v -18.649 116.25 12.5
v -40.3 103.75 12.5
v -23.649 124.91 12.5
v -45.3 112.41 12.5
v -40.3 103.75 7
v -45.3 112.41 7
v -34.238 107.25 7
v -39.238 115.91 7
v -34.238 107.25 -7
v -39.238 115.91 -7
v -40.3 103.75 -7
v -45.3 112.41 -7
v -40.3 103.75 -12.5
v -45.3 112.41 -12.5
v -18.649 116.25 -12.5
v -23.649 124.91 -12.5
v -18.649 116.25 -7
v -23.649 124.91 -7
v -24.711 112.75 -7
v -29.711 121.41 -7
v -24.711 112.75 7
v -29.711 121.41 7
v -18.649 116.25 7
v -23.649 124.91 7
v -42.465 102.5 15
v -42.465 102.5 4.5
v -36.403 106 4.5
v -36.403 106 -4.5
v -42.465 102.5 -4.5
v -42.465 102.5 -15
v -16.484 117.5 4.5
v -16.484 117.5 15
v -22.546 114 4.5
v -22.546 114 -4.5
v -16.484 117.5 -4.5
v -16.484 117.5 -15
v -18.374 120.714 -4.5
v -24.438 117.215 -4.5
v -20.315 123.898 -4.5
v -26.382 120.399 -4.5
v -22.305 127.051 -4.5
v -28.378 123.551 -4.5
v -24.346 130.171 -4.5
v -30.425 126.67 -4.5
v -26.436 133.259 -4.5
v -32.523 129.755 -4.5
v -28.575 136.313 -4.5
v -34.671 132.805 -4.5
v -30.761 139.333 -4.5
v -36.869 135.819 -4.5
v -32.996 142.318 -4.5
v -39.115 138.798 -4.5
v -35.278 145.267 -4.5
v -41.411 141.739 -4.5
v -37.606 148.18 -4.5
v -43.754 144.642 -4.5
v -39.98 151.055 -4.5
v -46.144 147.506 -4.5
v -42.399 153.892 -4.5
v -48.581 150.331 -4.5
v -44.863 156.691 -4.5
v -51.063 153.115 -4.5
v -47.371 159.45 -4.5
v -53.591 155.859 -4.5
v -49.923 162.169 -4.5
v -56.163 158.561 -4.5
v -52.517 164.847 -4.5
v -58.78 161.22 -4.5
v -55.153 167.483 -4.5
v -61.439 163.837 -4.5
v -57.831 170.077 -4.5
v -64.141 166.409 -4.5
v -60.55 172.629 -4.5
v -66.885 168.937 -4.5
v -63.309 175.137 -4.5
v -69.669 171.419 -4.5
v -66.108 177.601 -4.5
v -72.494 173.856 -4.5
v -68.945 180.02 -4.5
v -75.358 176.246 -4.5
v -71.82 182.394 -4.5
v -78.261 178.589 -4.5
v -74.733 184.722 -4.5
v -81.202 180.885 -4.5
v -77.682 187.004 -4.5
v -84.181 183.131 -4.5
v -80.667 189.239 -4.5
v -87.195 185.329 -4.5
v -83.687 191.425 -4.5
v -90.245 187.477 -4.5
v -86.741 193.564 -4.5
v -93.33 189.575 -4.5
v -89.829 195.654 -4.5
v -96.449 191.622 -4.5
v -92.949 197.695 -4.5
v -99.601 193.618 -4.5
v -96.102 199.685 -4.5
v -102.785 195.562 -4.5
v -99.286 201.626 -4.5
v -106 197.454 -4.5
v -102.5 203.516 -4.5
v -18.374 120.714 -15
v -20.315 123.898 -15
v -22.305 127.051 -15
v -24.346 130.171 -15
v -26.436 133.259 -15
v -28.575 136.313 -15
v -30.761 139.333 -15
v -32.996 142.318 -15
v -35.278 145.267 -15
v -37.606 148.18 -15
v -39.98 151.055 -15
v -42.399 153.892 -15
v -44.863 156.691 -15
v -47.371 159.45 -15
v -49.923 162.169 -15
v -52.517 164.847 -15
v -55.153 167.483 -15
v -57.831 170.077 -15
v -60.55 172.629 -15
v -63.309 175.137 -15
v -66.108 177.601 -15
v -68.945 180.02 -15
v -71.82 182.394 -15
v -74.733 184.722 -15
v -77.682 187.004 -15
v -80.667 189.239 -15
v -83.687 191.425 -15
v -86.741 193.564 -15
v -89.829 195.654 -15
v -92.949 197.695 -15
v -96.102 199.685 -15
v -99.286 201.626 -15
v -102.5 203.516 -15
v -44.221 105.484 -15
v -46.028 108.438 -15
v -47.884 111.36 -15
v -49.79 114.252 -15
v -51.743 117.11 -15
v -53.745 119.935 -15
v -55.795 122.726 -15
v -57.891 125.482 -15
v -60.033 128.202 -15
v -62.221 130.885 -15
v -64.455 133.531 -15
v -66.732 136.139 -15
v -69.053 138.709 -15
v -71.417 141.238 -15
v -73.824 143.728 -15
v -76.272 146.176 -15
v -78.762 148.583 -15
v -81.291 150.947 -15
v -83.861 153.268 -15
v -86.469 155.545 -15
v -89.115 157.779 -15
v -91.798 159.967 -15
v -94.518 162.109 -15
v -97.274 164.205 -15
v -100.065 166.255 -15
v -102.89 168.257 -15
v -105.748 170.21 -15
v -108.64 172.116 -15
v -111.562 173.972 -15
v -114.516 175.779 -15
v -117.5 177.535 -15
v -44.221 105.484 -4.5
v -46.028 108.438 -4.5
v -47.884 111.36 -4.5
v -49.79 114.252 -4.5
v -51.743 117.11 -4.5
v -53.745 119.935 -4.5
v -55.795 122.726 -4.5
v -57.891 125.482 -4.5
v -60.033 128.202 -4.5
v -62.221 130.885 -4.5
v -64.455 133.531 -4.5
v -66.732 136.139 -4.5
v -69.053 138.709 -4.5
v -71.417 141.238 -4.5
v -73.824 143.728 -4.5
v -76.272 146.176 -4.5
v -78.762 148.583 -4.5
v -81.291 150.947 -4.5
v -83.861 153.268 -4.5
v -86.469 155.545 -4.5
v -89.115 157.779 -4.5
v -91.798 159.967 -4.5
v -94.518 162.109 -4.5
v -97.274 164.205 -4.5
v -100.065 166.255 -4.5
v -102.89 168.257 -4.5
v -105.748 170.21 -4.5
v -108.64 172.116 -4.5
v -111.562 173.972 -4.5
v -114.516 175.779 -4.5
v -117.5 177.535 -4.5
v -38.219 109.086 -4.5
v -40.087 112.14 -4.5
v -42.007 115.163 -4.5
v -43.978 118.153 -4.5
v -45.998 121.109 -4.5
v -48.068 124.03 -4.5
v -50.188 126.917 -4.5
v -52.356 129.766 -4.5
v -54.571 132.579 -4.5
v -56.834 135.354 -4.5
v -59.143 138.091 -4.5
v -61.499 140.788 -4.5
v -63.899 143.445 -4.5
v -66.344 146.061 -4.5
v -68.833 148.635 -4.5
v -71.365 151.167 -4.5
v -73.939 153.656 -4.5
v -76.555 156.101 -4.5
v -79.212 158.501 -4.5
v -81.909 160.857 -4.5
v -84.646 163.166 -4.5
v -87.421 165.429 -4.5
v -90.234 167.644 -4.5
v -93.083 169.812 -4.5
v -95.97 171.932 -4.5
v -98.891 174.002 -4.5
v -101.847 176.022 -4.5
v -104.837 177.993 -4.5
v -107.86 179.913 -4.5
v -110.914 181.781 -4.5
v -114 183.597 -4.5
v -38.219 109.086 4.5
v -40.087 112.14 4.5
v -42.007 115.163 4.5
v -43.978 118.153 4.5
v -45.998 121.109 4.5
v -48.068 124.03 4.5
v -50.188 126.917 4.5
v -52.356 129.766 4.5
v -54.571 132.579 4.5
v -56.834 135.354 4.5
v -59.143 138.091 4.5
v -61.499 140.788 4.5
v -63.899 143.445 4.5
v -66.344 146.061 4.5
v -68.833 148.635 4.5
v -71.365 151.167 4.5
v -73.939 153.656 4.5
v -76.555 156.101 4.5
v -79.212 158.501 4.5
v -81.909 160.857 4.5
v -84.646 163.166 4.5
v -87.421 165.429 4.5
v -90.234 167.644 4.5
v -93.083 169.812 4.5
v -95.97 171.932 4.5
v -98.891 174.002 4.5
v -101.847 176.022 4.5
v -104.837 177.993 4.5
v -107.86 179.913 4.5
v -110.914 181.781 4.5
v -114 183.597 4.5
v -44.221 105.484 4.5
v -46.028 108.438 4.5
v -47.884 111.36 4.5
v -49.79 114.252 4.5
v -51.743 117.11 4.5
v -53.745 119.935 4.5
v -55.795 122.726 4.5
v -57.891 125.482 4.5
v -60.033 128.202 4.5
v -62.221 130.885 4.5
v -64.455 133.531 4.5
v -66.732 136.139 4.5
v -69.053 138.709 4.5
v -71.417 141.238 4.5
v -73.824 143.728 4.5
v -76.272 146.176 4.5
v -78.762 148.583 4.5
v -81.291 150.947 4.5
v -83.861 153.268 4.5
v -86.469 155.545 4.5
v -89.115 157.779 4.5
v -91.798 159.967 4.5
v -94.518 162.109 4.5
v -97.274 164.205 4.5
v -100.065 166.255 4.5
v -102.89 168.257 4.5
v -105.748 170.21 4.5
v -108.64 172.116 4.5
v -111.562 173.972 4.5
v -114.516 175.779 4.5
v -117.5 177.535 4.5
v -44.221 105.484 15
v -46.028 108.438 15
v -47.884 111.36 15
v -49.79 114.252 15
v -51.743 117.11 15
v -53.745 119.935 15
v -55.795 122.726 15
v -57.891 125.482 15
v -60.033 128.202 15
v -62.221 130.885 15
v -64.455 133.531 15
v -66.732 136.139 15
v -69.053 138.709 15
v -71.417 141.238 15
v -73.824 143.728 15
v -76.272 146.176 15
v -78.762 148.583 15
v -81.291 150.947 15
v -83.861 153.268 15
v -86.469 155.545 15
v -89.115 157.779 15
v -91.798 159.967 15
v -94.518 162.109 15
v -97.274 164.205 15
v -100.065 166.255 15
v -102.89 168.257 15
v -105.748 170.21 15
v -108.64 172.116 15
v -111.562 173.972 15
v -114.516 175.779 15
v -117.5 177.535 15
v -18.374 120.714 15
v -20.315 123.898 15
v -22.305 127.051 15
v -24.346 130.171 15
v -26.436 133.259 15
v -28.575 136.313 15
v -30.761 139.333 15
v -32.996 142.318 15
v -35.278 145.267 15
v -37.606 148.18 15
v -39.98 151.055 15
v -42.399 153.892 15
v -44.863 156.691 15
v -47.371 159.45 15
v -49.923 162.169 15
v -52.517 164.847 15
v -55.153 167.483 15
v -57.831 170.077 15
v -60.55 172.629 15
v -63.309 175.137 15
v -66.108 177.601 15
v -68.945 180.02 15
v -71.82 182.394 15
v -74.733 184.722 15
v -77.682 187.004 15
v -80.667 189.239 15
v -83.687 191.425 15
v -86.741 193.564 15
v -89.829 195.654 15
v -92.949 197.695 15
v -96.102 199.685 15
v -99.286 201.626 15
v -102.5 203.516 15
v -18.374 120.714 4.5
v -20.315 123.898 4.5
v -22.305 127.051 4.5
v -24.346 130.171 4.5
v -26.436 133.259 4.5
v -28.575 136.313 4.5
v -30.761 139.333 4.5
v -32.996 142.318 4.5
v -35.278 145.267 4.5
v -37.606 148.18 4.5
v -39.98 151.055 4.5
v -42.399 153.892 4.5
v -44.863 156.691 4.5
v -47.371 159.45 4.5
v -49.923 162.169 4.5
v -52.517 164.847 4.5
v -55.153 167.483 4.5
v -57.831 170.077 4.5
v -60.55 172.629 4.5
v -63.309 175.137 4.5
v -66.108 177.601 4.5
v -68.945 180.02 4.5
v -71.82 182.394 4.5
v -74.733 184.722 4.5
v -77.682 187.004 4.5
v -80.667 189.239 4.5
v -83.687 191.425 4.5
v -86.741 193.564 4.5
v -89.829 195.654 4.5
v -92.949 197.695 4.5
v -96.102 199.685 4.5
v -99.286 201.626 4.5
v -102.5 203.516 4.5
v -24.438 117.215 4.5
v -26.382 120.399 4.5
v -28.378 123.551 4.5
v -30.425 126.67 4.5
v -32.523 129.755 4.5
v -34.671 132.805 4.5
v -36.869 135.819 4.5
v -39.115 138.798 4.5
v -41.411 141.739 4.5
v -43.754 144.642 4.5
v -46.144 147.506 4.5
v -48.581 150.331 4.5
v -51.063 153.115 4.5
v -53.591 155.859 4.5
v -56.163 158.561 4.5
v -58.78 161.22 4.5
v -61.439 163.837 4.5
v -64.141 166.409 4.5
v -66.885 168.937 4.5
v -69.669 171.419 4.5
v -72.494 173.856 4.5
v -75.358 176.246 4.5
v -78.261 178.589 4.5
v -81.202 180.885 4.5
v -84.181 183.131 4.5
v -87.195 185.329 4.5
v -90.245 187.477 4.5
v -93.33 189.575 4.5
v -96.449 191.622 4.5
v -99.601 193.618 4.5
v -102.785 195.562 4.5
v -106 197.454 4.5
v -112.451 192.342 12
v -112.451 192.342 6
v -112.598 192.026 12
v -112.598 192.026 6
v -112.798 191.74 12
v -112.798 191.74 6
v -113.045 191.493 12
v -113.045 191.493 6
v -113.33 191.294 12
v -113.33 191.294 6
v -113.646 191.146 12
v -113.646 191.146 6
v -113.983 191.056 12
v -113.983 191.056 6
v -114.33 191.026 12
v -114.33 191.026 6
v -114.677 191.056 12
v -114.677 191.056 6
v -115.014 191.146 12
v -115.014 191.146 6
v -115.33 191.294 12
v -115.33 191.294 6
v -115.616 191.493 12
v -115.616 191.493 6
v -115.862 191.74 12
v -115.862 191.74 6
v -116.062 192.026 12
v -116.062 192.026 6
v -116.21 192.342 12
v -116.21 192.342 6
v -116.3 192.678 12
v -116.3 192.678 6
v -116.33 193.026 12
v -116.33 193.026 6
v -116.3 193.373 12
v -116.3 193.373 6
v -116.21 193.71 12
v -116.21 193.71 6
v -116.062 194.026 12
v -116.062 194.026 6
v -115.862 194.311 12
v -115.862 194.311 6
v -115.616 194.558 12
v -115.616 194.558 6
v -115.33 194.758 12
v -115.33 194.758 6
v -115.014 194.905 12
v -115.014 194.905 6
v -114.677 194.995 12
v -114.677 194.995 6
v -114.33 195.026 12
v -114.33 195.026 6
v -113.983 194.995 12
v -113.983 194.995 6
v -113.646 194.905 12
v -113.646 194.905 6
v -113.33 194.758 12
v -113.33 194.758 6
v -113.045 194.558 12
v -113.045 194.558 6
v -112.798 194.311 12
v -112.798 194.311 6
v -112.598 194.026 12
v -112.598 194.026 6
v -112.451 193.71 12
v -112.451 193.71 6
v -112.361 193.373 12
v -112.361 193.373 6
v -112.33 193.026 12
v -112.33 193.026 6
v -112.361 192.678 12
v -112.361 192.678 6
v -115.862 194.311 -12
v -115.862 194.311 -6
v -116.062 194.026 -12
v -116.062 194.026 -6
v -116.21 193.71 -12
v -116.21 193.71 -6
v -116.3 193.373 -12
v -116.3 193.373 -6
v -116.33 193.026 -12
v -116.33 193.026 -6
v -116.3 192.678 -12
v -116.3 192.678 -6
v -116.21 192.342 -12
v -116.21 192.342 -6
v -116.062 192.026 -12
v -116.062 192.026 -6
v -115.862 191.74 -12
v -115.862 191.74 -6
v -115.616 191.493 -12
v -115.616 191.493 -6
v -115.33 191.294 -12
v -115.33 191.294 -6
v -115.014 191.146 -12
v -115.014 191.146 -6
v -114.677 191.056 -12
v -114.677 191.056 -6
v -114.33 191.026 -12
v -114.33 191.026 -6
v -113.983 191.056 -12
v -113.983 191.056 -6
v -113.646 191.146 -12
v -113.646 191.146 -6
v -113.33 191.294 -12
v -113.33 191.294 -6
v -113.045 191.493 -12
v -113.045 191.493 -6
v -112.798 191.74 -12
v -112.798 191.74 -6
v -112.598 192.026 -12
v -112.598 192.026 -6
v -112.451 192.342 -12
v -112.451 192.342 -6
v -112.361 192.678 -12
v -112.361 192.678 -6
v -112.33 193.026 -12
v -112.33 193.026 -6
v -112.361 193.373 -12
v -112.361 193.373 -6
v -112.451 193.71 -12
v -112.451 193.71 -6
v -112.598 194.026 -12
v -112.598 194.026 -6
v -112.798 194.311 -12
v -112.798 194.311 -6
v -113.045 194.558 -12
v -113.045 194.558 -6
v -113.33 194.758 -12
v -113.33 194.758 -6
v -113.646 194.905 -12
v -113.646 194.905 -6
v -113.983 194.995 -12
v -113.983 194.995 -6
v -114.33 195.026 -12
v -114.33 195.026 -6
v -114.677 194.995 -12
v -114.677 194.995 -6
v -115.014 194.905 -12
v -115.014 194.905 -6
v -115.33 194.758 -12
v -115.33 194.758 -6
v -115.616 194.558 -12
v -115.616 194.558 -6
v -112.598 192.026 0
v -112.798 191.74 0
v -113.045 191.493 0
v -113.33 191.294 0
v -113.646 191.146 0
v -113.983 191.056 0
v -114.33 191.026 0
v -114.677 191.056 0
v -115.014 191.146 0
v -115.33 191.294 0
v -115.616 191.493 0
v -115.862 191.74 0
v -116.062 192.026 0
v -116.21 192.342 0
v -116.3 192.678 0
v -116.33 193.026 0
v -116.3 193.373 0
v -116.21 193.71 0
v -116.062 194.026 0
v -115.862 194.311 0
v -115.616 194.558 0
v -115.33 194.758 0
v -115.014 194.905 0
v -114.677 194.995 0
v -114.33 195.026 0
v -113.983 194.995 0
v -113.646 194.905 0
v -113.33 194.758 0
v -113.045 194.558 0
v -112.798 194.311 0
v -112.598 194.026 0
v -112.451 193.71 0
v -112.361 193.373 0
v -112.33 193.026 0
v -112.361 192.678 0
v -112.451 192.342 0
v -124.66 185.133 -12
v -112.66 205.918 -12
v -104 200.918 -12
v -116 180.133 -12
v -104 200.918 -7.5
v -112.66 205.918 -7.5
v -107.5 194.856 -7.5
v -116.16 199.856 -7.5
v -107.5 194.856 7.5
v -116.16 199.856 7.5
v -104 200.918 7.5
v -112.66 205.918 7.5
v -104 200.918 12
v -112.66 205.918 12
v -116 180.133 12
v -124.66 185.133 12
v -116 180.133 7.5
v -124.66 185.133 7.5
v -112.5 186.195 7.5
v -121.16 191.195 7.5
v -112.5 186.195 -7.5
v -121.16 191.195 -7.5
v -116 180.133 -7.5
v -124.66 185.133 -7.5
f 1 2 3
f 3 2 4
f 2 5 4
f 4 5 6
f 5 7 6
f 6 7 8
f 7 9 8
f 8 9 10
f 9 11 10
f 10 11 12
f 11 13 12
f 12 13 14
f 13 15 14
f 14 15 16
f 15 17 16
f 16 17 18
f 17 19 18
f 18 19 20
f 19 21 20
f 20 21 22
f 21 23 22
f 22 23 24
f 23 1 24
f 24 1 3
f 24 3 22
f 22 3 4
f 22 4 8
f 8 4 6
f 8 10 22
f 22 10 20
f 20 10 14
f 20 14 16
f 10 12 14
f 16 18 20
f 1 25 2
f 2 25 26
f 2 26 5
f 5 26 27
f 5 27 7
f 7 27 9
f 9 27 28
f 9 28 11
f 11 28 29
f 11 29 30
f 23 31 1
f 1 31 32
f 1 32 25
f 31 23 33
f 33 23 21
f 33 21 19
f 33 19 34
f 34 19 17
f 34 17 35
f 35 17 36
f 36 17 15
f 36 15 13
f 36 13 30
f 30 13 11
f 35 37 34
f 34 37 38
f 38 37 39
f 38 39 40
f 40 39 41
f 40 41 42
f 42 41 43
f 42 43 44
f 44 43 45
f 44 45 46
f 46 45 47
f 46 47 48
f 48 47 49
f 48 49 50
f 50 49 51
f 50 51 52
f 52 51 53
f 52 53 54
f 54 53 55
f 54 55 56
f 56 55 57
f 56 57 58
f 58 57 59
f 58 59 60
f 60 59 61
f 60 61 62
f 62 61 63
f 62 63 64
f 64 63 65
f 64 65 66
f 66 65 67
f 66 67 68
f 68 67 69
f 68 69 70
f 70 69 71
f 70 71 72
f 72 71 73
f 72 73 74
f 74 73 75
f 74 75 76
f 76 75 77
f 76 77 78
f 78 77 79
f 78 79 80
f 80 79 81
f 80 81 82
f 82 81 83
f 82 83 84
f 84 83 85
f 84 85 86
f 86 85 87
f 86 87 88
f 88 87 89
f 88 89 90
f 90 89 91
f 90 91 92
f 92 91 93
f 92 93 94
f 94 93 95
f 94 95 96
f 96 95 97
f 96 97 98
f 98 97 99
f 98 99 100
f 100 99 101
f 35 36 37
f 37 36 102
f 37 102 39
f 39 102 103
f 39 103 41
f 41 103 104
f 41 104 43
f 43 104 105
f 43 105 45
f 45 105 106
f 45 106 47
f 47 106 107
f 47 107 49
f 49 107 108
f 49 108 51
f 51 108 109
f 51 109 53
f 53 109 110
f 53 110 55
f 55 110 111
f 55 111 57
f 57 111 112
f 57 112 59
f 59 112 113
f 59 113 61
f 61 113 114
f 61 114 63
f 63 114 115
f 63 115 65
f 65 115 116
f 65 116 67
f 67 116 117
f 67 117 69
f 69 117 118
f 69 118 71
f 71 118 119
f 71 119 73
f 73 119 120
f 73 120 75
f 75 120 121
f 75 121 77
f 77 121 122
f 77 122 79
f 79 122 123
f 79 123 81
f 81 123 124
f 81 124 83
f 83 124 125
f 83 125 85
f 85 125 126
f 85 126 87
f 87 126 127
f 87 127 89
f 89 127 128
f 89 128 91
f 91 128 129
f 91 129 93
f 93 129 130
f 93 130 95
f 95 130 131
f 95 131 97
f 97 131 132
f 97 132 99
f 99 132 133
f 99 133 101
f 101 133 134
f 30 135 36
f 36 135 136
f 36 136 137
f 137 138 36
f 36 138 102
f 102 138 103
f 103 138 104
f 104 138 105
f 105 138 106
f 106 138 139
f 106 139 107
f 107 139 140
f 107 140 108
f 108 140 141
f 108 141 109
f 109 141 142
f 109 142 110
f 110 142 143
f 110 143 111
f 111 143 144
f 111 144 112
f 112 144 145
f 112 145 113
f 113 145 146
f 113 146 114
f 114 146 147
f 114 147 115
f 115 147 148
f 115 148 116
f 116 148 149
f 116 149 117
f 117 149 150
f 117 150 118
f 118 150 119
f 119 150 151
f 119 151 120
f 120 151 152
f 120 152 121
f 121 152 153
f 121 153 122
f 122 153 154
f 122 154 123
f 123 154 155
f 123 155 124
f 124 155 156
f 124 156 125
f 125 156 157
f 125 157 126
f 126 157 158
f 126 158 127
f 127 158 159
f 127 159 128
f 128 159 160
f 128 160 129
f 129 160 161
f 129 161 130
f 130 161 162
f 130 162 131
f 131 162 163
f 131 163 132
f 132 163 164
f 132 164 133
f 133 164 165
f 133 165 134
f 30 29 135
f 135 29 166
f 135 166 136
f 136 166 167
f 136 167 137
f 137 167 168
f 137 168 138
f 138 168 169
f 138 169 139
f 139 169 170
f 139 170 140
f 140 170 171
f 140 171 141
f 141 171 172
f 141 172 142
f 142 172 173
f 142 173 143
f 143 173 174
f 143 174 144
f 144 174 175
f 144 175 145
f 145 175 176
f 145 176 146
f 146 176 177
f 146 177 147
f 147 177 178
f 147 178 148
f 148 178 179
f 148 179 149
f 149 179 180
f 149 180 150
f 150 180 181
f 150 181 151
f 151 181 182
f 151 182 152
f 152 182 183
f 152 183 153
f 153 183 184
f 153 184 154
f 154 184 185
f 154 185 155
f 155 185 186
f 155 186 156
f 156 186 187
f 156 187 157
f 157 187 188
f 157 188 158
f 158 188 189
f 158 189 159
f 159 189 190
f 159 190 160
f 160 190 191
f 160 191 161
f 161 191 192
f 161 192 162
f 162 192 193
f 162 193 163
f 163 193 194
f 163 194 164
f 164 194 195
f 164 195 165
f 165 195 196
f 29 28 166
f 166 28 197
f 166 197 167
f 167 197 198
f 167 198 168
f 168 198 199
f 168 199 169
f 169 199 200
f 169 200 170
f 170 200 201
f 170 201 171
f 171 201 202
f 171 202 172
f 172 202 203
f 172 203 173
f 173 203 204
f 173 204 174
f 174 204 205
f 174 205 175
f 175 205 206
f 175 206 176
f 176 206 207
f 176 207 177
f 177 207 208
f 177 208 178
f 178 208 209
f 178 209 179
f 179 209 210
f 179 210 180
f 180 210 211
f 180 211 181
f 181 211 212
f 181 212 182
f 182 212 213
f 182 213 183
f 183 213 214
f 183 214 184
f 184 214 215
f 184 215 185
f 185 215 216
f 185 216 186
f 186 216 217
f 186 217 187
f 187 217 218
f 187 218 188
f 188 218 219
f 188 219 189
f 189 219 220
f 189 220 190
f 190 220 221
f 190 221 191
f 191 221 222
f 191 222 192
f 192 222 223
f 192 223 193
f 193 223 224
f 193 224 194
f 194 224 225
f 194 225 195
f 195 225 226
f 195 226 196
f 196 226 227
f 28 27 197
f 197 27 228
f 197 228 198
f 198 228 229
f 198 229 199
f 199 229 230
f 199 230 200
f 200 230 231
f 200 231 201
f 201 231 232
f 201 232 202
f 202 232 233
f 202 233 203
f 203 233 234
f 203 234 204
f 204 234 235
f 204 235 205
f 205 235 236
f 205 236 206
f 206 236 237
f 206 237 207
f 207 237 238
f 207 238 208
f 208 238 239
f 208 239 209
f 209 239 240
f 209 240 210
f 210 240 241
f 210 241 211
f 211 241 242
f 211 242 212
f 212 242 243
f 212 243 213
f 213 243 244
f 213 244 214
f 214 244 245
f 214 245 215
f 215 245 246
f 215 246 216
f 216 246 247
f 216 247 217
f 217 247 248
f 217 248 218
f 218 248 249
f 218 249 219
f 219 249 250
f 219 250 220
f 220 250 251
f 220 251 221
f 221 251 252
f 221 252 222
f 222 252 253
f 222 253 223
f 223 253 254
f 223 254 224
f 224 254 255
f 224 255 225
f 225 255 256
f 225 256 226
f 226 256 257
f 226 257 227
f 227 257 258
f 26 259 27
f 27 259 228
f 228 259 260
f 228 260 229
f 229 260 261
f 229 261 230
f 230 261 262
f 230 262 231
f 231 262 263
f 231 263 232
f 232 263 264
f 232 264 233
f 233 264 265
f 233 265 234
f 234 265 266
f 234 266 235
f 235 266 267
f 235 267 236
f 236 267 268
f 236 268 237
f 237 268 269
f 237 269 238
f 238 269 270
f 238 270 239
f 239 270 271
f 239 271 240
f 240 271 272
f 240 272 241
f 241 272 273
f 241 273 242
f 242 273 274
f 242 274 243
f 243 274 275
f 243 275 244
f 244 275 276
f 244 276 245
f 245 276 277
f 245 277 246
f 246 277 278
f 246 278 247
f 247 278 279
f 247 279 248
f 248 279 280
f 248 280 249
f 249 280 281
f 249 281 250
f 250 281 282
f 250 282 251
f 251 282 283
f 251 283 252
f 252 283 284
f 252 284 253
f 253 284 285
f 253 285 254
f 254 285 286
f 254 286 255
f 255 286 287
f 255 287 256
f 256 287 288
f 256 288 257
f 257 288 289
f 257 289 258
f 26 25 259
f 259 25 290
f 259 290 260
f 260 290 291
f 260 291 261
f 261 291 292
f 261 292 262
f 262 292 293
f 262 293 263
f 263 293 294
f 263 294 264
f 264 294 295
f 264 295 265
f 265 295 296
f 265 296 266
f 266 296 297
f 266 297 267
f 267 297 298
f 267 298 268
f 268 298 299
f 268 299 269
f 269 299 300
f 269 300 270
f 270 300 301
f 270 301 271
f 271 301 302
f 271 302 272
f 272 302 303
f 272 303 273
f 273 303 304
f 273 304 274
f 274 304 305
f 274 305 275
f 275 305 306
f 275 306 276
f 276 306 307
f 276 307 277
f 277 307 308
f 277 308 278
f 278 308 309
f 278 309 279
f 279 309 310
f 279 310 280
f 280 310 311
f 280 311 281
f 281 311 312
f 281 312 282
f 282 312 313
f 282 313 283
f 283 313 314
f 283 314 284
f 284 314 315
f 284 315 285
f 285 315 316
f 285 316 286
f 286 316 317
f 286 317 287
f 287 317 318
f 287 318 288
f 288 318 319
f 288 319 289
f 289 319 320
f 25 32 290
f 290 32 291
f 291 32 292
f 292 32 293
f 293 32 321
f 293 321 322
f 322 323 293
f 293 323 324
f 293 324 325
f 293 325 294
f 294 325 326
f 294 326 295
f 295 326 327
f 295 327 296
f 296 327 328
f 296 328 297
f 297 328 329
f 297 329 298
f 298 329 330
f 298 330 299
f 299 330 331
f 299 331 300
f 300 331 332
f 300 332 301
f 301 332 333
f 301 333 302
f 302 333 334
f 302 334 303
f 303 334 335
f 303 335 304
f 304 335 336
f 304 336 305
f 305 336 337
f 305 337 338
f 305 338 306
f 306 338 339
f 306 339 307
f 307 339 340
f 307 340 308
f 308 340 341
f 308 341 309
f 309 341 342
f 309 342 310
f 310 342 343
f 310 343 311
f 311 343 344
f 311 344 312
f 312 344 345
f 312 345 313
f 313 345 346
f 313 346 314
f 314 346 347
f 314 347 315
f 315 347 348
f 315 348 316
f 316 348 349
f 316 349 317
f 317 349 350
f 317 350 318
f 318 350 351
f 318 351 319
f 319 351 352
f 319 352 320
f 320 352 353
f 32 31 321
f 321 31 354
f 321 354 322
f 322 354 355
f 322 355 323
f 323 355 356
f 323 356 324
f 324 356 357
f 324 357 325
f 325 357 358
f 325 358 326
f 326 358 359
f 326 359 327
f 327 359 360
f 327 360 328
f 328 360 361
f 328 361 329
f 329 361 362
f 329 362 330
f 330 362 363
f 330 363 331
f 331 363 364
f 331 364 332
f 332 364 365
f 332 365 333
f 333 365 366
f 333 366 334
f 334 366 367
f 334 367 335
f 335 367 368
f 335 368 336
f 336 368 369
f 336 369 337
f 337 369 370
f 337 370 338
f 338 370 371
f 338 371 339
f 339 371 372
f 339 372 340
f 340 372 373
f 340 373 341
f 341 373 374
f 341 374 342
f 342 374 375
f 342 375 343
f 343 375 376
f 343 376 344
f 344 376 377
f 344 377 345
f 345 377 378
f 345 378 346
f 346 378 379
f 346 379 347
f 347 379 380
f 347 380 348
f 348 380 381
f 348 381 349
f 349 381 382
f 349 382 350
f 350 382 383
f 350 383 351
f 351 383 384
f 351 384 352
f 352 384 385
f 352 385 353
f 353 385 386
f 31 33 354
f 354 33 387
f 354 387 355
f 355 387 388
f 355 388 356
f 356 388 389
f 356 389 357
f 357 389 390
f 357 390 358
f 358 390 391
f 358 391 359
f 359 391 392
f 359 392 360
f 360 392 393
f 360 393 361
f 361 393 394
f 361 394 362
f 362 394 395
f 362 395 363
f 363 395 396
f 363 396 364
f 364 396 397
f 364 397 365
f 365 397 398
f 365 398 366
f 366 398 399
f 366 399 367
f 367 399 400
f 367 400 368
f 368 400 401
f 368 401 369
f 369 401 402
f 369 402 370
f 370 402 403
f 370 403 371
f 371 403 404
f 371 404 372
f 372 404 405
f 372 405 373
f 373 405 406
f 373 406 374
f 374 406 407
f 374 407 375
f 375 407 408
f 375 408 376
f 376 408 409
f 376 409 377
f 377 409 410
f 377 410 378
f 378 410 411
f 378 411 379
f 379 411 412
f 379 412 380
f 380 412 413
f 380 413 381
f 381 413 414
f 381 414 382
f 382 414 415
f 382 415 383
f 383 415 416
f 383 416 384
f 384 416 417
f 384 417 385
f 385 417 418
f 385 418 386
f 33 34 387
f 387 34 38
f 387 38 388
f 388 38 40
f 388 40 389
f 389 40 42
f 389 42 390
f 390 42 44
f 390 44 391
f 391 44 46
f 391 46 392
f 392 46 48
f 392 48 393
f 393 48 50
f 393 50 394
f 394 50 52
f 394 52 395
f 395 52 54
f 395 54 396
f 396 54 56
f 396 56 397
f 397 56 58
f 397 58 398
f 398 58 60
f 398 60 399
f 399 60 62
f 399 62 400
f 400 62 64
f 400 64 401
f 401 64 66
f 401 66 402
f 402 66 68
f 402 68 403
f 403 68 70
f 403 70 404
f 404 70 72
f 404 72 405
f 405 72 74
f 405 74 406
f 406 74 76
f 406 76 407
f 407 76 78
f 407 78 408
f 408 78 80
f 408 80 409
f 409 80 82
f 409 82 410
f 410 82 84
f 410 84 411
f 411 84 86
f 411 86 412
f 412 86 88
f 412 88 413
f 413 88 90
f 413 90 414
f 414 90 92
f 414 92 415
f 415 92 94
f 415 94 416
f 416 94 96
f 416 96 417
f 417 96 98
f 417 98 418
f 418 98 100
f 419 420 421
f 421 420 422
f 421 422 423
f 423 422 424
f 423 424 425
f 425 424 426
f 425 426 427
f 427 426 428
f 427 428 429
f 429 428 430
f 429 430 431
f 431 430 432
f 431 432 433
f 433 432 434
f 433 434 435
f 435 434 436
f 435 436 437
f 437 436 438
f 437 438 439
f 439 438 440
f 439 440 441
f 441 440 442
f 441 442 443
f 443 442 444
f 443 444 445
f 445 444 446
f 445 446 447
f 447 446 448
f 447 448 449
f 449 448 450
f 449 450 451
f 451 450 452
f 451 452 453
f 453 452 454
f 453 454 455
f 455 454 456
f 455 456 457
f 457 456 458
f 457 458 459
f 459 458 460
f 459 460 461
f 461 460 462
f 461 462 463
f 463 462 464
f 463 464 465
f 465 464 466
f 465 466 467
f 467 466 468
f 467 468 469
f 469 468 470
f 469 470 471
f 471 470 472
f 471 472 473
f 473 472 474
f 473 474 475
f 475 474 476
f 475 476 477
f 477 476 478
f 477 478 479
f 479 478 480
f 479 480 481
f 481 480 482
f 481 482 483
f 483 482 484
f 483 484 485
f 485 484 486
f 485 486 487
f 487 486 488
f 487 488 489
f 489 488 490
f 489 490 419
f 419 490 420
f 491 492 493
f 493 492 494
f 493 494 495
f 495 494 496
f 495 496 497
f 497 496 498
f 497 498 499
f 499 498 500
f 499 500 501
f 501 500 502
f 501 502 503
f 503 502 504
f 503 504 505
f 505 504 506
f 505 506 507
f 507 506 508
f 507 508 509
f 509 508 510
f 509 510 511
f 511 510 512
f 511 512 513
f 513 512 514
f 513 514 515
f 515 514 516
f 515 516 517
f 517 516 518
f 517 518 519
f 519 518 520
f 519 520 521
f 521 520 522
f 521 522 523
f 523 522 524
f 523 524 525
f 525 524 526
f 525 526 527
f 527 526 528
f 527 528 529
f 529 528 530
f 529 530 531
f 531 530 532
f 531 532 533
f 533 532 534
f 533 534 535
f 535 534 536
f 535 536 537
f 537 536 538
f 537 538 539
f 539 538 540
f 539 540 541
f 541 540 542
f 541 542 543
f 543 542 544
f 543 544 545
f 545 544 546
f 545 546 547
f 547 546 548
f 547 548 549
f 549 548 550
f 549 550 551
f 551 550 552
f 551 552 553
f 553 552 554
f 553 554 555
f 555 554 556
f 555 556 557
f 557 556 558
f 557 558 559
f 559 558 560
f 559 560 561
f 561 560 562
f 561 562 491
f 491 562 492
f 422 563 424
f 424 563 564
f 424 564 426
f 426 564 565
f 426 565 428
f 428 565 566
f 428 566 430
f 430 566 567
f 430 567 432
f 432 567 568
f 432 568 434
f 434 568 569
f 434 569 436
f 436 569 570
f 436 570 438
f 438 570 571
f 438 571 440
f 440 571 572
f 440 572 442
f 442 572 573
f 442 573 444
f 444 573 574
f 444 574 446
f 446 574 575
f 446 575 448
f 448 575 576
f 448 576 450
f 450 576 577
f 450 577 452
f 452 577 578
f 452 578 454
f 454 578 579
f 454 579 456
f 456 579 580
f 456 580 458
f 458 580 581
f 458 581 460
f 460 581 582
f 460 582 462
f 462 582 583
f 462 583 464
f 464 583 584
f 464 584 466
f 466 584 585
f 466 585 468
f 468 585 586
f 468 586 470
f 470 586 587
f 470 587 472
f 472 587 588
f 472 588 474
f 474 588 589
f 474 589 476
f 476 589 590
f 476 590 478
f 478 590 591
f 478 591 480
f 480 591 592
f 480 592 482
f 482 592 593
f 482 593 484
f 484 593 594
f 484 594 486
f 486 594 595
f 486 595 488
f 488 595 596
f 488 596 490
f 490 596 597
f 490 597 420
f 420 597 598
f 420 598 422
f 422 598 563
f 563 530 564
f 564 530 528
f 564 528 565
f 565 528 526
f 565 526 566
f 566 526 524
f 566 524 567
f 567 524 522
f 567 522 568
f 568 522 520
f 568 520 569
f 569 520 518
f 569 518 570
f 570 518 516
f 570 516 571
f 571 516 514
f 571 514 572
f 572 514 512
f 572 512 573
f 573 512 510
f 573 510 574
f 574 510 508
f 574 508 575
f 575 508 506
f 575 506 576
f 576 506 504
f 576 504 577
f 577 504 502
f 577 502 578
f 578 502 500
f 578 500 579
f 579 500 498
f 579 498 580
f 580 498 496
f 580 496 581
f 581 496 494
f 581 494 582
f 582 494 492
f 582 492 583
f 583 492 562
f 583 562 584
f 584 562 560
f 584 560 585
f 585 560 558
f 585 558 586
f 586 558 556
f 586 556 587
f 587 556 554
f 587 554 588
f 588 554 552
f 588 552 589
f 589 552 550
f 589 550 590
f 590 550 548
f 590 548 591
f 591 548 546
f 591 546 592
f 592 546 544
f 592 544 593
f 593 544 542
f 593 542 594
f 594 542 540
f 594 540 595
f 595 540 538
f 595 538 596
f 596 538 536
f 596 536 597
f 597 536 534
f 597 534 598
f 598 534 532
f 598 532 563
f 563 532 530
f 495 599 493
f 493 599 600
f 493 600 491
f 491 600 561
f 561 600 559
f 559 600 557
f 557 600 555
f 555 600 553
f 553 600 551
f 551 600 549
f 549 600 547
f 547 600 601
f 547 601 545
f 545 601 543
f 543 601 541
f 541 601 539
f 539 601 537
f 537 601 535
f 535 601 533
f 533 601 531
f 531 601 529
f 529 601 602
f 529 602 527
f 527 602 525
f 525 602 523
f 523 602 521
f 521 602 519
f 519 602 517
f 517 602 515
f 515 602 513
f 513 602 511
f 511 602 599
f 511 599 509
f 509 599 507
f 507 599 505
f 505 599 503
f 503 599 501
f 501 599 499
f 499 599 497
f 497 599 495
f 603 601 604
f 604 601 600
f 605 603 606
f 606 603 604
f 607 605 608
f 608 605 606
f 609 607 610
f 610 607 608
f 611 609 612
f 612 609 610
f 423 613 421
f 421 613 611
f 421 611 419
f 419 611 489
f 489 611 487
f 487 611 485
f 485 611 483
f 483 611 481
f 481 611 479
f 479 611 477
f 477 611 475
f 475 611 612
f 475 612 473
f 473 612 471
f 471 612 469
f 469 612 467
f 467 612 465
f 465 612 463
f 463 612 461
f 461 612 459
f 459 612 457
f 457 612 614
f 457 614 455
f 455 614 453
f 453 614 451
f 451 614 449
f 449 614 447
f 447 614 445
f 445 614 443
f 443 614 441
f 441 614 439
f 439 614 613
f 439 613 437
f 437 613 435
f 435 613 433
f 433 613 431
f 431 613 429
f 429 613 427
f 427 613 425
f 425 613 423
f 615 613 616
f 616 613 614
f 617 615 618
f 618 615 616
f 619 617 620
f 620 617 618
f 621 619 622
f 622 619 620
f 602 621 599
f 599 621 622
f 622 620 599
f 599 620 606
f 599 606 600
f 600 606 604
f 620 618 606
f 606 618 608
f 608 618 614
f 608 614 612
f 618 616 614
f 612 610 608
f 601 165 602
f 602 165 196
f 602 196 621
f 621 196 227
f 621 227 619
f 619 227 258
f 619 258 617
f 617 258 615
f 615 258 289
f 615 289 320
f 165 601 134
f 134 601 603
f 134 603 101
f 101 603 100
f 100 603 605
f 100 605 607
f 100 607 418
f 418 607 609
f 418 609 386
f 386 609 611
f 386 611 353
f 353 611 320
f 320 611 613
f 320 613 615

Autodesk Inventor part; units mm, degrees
sketch "Sketch2" plane through (0, 0, 0) normal (0, 1, 0) x (-1, 0, 0)
  line L0 (15, 15) -> (-15, 15)
  line L1 (-15, -15) -> (15, -15)
  line L2 (15, 4.5) -> (8, 4.5)
  line L3 (8, 4.5) -> (8, -4.5)
  line L4 (8, -4.5) -> (15, -4.5)
  line L5 (-15, 4.5) -> (-8, 4.5)
  line L6 (-8, 4.5) -> (-8, -4.5)
  line L7 (-8, -4.5) -> (-15, -4.5)
  line L8 (15, -15) -> (15, -4.5)
  line L9 (15, 4.5) -> (15, 15)
  line L10 (-15, 15) -> (-15, 4.5)
  line L11 (-15, -4.5) -> (-15, -15)
  point P0 (0, 0)
  dimension "d18" = 9
  dimension "d19" = 7
  dimension "d21" = 16
  dimension "d22" = 30
  dimension "d23" = 15
  dimension "d24" = 4.5
  dimension "d25" = 8
sketch "Sketch6" plane through (0, 0, 0) normal (0, 0, 1) x (1, 0, 0)
  arc A0 (0, 0) -> (-110, 190.5256) centre (-220, 0) ccw
  line L0 (-220, 0) -> (-110, 190.5256) construction
  line L1 (-220, 0) -> (0, 0) construction
  dimension "d41" = 220
  dimension "d42" = 60
  dimension "d43" = 220
  dimension "d44" = 0
sweep "Sweep2" add profiles "Sketch2" path "Sketch6"
sketch "Sketch7" plane through (-102.5, 203.516, 4.5) normal (-0.8660254, 0.5, 0) x (0, 0, 1)
  line L0 (-16.5, -3) -> (-12, -3)
  line L1 (-12, -3) -> (-12, -10)
  line L2 (-12, -10) -> (3, -10)
  line L3 (3, -10) -> (3, -3)
  line L4 (3, -3) -> (7.5, -3)
  line L5 (7.5, -3) -> (7.5, -27)
  line L6 (7.5, -27) -> (3, -27)
  line L7 (3, -27) -> (3, -20)
  line L8 (3, -20) -> (-12, -20)
  line L9 (-12, -20) -> (-12, -27)
  line L10 (-12, -27) -> (-16.5, -27)
  line L11 (-16.5, -27) -> (-16.5, -3)
  line L12 (-19.5, 0) -> (-19.5, -30) projected
  line L13 (-9, -7) -> (-9, 0) projected
  line L14 (0, 0) -> (0, -7) projected
  line L15 (10.5, -30) -> (10.5, 0) projected
  line L16 (-19.5, -30) -> (-9, -30) projected
  line L17 (-9, 0) -> (-19.5, 0) projected
  line L18 (0, -30) -> (10.5, -30) projected
  line L19 (-9, -23) -> (0, -23) projected
  line L20 (0, -7) -> (-9, -7) projected
  point P0 (-4.5, -125)
  point P1 (-14.25, 0)
  dimension "d47" = 3
  dimension "d48" = 3
  dimension "d49" = 3
  dimension "d50" = 3
  dimension "d51" = 3
  dimension "d52" = 3
  dimension "d53" = 3
  dimension "d54" = 3
  dimension "d55" = 3
extrude "Extrusion3" add sketch "Sketch7" along normal blind 10
sketch "Sketch8" plane through (-116, 180.1333, -12) normal (0, 0, -1) x (-0.8660254, 0.5, 0)
  circle A0 centre (5, 12) radius 2
  line L0 (0, 0) -> (10, 0) projected
  line L1 (10, 24) -> (10, 0) projected
  point P0 (-190.5256, -98)
  dimension "d58" = 4
  dimension "d59" = 12
  dimension "d60" = 5
extrude "Extrusion4" cut sketch "Sketch8" against normal through all
sketch "Sketch9" plane through (0, 0, 0) normal (0, 1, 0) x (-1, 0, 0)
  line L0 (-40, 40) -> (40, 40)
  line L1 (40, 40) -> (40, -40)
  line L2 (40, -40) -> (-40, -40)
  line L3 (-40, -40) -> (-40, 40)
  point P0 (0, 0)
  dimension "d63" = 80
  dimension "d64" = 80
  dimension "d65" = 40
  dimension "d66" = 40
ref_plane "Work Plane1" through (0, 50, 0) normal (0, 1, 0) x (-1, 0, 0)
sketch "Sketch10" plane through (0, 50, 0) normal (0, 1, 0) x (-1, 0, 0)
  line L0 (-9.6, 15) -> (21.4, 15)
  line L1 (21.4, 15) -> (21.4, -15)
  line L2 (21.4, -15) -> (-9.6, -15)
  line L3 (-9.6, -15) -> (-9.6, 15)
  point P0 (0, 0)
  dimension "d68" = 30
  dimension "d69" = 9.6
  dimension "d70" = 15
  dimension "d71" = 31
loft "Loft1" add profiles "Sketch9", "Sketch10"
ref_plane "Work Plane2" through (0, 0, -79) normal (0, 0, 1) x (1, 0, 0)
sketch "Sketch11" plane through (0, 0, -79) normal (0, 0, 1) x (1, 0, 0)
  line L0 (50, -5) -> (-129.034, -5)
  line L1 (-129.034, -5) -> (-129.034, 135)
  line L2 (-129.034, 135) -> (-90, 202.6089)
  line L3 (-90, 202.6089) -> (50, 95)
  line L4 (50, -5) -> (50, 95)
  point P0 (0, 0)
  dimension "d77" = 100
  dimension "d79" = 140
  dimension "d80" = 67.6089
  dimension "d81" = 140
  dimension "d82" = 150
  dimension "d83" = 50
  dimension "d86" = 5
extrude "Extrusion5" [suppressed]
sketch "Sketch12" plane through (-40, 0, 40) normal (0, -1, 0) x (1, 0, 0)
  line L0 (70, -70) -> (10, -70)
  line L1 (10, -70) -> (10, -10)
  line L2 (10, -10) -> (70, -10)
  line L3 (70, -10) -> (70, -70)
  line L4 (0, 0) -> (0, -80) projected
  line L5 (0, -80) -> (80, -80) projected
  line L6 (80, -80) -> (80, 0) projected
  line L7 (80, 0) -> (0, 0) projected
  point P0 (40, -40)
  dimension "d87" = 10
  dimension "d88" = 10
  dimension "d89" = 10
  dimension "d90" = 10
ref_plane "Work Plane3" through (-40, 45, 40) normal (0, -1, 0) x (1, 0, 0)
sketch "Sketch14" plane through (-40, 45, 40) normal (0, -1, 0) x (1, 0, 0)
  line L0 (40.5, -40.5) -> (39.5, -40.5)
  line L1 (39.5, -40.5) -> (39.5, -39.5)
  line L2 (39.5, -39.5) -> (40.5, -39.5)
  line L3 (40.5, -39.5) -> (40.5, -40.5)
  line L4 (80, 0) -> (0, 0) projected
  line L5 (0, 0) -> (0, -80) projected
  point P0 (40, -40)
  point P1 (0, -40)
  dimension "d95" = 1
  dimension "d96" = 1
  dimension "d97" = 39.5
  dimension "d98" = 39.5
loft "Loft2" cut profiles "Sketch12", "Sketch14" contours L0 L1 L2 L3 / all
ref_plane "Work Plane4" through (9.6, 50, -45) normal (0, 0, -1) x (-1, 0, 0)
sketch "Sketch15" plane through (9.6, 50, -45) normal (0, 0, -1) x (-1, 0, 0)
  line L0 (-71.3683, -50) -> (104.0101, -50)
  line L1 (229.6, -50) -> (-99.4897, 140)
  line L2 (-99.4897, 140) -> (-99.4897, -50)
  line L3 (-99.4897, -50) -> (-71.3683, -50)
  line L4 (229.6, -50) -> (104.0101, -50)
  point P0 (9.6, -50)
  dimension "d104" = 220
  dimension "d105" = 30
  dimension "d107" = 190
extrude "Extrusion6" cut sketch "Sketch15" against normal through all
sketch "Sketch16" plane through (-42.4648, 102.5, -15) normal (0.5, -0.8660254, 0) x (0.8660254, 0.5, 0)
  line L0 (27.5, 27.5) -> (27.5, 22)
  line L1 (27.5, 22) -> (20.5, 22)
  line L2 (20.5, 22) -> (20.5, 8)
  line L3 (23, 10.5) -> (-7.5462, 10.5) projected
  line L4 (20.5, 8) -> (27.5, 8)
  line L5 (27.5, 8) -> (27.5, 2.5)
  line L6 (27.5, 2.5) -> (2.5, 2.5)
  line L7 (2.5, 2.5) -> (2.5, 8)
  line L8 (2.5, 8) -> (9.5, 8)
  line L9 (9.5, 8) -> (9.5, 22)
  line L10 (9.5, 22) -> (2.5, 22)
  line L11 (2.5, 27.5) -> (27.5, 27.5)
  line L12 (2.5, 22) -> (2.5, 27.5)
  line L13 (0, 30) -> (30, 30) projected
  line L14 (0, 19.5) -> (0, 30) projected
  line L15 (7, 19.5) -> (0, 19.5) projected
  line L16 (7, 10.5) -> (7, 19.5) projected
  line L17 (30, 0) -> (0, 0) projected
  line L18 (30, 10.5) -> (30, 0) projected
  line L19 (23, 19.5) -> (23, 10.5) projected
  point P0 (-14.4744, 15)
  dimension "d110" = 2.5
  dimension "d111" = 2.5
  dimension "d112" = 2.5
  dimension "d113" = 2.5
  dimension "d114" = 2.5
  dimension "d115" = 2.5
  dimension "d116" = 2.5
  dimension "d117" = 2.5
extrude "Extrusion7" cut sketch "Sketch16" against normal blind 10
properties part number "LightRail_endSection"
